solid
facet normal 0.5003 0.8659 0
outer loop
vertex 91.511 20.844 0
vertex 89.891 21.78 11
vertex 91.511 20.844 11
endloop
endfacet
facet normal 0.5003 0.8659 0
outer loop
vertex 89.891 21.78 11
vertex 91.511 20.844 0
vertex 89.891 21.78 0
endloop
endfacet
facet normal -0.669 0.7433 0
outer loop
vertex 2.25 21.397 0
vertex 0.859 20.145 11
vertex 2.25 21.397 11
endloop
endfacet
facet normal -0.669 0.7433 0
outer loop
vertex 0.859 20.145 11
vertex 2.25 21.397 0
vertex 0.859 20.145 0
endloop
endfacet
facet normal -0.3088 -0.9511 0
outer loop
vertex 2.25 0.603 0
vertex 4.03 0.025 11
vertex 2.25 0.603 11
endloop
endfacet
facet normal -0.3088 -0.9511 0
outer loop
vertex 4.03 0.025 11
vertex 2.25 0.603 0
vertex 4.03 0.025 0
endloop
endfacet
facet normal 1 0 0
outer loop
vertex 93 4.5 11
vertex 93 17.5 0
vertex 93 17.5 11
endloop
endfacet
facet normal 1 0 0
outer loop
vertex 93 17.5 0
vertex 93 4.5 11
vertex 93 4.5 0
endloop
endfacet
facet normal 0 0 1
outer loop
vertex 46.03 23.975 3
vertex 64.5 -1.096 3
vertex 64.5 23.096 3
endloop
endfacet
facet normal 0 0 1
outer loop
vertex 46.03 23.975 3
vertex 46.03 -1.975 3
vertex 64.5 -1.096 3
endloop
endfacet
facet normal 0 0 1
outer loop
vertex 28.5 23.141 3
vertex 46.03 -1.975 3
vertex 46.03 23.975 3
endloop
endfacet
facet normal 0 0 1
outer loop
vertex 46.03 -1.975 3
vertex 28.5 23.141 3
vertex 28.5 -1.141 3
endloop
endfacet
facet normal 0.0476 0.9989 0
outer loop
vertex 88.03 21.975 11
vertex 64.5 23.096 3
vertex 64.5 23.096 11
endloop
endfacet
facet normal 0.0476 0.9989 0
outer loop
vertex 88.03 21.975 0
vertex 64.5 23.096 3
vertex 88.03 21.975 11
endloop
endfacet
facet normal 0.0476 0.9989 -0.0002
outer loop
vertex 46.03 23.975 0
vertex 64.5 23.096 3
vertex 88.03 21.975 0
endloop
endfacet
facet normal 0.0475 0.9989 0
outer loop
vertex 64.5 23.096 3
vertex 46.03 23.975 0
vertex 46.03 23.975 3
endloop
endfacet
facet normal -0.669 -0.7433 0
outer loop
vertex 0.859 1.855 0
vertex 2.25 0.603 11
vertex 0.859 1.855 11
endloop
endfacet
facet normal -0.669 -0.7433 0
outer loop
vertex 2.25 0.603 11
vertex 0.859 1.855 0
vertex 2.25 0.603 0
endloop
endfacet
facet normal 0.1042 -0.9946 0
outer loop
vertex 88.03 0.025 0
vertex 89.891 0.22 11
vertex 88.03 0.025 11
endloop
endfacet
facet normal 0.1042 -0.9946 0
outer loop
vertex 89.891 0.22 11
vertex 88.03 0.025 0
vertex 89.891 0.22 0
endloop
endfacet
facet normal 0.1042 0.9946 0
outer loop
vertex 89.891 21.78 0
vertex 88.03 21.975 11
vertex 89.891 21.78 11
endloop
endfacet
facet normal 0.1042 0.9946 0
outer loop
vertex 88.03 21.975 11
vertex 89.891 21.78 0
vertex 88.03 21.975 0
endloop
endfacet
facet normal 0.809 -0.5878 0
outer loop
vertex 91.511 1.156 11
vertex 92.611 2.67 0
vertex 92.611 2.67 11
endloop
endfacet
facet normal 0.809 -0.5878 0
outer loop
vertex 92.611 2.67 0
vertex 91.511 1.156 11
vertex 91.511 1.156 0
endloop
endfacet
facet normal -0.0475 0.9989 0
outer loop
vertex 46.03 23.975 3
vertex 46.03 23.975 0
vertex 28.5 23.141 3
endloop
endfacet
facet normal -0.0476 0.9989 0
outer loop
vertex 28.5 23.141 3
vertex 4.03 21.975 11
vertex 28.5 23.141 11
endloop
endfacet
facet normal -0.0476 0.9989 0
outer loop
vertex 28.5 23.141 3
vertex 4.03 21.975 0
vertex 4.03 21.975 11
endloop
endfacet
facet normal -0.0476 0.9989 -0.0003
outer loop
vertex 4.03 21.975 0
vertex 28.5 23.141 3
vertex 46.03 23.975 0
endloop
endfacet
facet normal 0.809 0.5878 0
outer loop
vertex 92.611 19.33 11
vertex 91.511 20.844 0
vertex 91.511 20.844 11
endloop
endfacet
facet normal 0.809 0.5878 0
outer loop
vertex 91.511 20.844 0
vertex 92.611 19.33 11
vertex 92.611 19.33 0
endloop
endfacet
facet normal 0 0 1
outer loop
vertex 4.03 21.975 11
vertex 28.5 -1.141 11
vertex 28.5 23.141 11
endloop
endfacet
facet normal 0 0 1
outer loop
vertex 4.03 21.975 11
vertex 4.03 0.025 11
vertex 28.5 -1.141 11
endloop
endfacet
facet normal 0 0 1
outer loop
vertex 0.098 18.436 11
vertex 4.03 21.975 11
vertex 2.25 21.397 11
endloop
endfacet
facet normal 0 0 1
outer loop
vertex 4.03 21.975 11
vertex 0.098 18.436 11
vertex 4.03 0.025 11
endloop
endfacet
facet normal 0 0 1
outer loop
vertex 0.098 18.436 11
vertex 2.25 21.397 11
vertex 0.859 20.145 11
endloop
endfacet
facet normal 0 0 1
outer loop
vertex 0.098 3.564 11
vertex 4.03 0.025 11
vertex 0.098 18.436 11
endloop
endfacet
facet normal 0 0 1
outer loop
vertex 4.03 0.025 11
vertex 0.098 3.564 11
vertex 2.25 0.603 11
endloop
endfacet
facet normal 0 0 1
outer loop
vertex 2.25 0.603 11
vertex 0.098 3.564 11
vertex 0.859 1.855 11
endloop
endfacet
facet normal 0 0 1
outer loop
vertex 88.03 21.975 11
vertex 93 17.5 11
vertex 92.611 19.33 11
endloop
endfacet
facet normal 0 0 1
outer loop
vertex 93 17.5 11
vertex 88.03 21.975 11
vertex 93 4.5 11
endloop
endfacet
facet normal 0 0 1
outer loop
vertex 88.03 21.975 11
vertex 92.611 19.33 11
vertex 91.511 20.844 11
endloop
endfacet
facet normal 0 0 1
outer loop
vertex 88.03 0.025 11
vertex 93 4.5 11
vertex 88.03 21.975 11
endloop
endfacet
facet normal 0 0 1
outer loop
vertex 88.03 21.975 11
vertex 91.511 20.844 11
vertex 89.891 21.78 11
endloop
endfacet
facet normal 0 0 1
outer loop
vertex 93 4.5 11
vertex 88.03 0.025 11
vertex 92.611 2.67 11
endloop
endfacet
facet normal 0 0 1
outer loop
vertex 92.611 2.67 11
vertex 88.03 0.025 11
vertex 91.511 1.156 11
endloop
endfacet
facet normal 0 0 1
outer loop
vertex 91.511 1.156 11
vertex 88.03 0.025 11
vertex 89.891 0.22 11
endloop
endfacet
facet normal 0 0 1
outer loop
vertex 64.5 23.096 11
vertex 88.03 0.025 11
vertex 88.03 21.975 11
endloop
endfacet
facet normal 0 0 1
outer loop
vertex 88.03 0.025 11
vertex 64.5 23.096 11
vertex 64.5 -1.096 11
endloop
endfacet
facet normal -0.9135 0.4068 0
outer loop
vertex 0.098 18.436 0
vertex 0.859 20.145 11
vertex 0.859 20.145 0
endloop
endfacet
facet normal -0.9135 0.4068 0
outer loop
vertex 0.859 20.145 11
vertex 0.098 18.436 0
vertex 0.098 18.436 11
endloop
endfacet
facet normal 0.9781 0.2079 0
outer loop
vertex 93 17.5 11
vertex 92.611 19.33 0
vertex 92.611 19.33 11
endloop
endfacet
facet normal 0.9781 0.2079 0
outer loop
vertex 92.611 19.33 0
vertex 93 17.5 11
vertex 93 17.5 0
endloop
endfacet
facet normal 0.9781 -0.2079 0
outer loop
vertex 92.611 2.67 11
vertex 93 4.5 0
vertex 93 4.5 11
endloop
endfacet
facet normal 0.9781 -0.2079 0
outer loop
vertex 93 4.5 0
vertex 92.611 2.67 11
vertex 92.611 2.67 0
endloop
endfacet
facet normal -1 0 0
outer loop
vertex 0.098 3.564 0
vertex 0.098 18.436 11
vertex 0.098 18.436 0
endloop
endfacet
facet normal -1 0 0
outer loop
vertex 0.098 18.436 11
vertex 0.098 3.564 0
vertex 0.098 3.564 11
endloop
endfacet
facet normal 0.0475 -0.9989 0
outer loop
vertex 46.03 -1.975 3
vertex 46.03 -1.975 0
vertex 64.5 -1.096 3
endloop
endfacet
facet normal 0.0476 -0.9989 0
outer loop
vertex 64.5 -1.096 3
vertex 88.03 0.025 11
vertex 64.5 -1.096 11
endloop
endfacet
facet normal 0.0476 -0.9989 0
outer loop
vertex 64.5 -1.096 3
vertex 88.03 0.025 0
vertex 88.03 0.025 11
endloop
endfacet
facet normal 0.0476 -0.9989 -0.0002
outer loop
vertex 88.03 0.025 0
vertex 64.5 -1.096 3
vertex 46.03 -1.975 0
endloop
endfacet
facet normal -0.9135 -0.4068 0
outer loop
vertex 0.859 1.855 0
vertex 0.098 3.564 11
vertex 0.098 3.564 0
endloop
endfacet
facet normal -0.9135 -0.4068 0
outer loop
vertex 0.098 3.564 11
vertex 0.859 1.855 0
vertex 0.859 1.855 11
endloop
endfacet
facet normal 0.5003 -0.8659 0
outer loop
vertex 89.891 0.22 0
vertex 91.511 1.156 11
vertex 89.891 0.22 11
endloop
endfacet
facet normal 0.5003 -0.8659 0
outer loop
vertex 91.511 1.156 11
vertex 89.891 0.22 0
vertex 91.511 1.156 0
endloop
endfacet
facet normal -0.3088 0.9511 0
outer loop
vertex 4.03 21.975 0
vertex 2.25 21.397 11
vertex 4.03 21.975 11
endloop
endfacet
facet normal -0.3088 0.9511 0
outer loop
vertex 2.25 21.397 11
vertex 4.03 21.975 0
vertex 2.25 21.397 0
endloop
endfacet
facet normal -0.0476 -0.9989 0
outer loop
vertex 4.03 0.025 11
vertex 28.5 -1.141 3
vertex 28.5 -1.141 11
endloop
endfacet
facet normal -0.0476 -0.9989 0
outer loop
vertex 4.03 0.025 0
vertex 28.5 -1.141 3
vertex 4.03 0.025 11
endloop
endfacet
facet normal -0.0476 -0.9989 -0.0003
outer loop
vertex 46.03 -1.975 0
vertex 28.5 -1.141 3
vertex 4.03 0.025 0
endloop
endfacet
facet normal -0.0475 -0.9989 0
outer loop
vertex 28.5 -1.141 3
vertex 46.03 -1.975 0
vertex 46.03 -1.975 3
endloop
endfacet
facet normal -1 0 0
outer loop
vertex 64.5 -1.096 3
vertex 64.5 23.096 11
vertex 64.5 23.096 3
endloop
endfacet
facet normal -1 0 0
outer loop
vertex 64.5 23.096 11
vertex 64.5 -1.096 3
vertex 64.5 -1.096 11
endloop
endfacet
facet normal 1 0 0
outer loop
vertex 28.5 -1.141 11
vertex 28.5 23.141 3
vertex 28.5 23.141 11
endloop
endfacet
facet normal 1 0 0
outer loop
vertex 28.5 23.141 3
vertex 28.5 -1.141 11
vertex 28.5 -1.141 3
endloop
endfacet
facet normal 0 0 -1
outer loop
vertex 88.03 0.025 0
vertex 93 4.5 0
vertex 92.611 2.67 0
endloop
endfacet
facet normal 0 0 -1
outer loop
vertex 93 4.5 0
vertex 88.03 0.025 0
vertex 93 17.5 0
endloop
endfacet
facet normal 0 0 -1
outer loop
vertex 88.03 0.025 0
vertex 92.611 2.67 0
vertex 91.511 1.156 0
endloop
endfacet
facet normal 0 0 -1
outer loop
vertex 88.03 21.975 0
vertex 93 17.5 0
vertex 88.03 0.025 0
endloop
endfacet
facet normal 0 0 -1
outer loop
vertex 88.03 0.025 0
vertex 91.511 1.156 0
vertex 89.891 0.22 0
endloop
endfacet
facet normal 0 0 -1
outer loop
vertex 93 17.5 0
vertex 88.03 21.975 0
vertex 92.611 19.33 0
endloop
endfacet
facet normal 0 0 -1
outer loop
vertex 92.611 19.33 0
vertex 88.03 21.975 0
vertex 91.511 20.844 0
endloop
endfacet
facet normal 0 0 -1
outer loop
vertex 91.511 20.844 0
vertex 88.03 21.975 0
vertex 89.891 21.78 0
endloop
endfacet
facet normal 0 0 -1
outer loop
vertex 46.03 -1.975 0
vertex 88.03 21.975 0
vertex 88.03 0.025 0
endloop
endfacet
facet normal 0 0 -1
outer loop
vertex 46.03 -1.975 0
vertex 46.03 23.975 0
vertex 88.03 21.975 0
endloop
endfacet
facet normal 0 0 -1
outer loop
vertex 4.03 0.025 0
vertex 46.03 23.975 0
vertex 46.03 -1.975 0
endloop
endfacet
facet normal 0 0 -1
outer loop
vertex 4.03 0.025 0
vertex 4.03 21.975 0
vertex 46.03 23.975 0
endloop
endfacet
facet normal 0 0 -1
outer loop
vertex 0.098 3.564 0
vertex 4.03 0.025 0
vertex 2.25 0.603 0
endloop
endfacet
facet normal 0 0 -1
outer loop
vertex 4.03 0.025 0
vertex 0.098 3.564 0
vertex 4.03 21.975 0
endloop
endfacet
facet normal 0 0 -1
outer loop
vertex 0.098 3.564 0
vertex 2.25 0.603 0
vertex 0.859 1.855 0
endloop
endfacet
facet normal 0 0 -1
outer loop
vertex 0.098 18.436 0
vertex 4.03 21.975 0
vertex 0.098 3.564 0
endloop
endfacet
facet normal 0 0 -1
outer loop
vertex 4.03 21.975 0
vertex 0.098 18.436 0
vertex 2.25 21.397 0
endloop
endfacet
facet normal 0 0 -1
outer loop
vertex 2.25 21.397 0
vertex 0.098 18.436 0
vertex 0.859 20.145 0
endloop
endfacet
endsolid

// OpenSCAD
width1     = 22;
width2     = 26;
length     = 93;
gap        = 36;
thickness1 =  3;
thickness2 =  8;
corner     =  9;
tiny       = 0.0001;

module rounded_edge(length, width1, width2, thickness, corner) {
    hull() {
        translate([0*length+0.5*corner, 0*width1+0.5*corner])
            cylinder( d = corner, h = thickness);
        translate([0*length+0.5*corner, 1*width1-0.5*corner])
            cylinder( d = corner, h = thickness);
        translate([1*length-0.5*corner, 0*width1+0.5*corner])
            cylinder( d = corner, h = thickness);
        translate([1*length-0.5*corner, 1*width1-0.5*corner])
            cylinder( d = corner, h = thickness);
        
        translate([0.5*length+0*corner, 0.5*(width1-width2)+0.5*corner])
            cylinder( d = corner, h = thickness);
        translate([0.5*length+0*corner, width2-0.5*(width2-width1)-0.5*corner])
            cylinder( d = corner, h = thickness);

    }
}

translate([0, 0, 0])
    color([1, 0, 0])
        rounded_edge(length, width1, width2, thickness1, corner);

translate([0, 0, thickness1])
    color([1, 1, 0])
        difference() {
            rounded_edge(length, width1, width2, thickness2, corner);
            translate([0.5*(length-gap), width1-width2, -2*thickness2])
                cube([gap, 4*width2, 4*thickness2]);
        }
